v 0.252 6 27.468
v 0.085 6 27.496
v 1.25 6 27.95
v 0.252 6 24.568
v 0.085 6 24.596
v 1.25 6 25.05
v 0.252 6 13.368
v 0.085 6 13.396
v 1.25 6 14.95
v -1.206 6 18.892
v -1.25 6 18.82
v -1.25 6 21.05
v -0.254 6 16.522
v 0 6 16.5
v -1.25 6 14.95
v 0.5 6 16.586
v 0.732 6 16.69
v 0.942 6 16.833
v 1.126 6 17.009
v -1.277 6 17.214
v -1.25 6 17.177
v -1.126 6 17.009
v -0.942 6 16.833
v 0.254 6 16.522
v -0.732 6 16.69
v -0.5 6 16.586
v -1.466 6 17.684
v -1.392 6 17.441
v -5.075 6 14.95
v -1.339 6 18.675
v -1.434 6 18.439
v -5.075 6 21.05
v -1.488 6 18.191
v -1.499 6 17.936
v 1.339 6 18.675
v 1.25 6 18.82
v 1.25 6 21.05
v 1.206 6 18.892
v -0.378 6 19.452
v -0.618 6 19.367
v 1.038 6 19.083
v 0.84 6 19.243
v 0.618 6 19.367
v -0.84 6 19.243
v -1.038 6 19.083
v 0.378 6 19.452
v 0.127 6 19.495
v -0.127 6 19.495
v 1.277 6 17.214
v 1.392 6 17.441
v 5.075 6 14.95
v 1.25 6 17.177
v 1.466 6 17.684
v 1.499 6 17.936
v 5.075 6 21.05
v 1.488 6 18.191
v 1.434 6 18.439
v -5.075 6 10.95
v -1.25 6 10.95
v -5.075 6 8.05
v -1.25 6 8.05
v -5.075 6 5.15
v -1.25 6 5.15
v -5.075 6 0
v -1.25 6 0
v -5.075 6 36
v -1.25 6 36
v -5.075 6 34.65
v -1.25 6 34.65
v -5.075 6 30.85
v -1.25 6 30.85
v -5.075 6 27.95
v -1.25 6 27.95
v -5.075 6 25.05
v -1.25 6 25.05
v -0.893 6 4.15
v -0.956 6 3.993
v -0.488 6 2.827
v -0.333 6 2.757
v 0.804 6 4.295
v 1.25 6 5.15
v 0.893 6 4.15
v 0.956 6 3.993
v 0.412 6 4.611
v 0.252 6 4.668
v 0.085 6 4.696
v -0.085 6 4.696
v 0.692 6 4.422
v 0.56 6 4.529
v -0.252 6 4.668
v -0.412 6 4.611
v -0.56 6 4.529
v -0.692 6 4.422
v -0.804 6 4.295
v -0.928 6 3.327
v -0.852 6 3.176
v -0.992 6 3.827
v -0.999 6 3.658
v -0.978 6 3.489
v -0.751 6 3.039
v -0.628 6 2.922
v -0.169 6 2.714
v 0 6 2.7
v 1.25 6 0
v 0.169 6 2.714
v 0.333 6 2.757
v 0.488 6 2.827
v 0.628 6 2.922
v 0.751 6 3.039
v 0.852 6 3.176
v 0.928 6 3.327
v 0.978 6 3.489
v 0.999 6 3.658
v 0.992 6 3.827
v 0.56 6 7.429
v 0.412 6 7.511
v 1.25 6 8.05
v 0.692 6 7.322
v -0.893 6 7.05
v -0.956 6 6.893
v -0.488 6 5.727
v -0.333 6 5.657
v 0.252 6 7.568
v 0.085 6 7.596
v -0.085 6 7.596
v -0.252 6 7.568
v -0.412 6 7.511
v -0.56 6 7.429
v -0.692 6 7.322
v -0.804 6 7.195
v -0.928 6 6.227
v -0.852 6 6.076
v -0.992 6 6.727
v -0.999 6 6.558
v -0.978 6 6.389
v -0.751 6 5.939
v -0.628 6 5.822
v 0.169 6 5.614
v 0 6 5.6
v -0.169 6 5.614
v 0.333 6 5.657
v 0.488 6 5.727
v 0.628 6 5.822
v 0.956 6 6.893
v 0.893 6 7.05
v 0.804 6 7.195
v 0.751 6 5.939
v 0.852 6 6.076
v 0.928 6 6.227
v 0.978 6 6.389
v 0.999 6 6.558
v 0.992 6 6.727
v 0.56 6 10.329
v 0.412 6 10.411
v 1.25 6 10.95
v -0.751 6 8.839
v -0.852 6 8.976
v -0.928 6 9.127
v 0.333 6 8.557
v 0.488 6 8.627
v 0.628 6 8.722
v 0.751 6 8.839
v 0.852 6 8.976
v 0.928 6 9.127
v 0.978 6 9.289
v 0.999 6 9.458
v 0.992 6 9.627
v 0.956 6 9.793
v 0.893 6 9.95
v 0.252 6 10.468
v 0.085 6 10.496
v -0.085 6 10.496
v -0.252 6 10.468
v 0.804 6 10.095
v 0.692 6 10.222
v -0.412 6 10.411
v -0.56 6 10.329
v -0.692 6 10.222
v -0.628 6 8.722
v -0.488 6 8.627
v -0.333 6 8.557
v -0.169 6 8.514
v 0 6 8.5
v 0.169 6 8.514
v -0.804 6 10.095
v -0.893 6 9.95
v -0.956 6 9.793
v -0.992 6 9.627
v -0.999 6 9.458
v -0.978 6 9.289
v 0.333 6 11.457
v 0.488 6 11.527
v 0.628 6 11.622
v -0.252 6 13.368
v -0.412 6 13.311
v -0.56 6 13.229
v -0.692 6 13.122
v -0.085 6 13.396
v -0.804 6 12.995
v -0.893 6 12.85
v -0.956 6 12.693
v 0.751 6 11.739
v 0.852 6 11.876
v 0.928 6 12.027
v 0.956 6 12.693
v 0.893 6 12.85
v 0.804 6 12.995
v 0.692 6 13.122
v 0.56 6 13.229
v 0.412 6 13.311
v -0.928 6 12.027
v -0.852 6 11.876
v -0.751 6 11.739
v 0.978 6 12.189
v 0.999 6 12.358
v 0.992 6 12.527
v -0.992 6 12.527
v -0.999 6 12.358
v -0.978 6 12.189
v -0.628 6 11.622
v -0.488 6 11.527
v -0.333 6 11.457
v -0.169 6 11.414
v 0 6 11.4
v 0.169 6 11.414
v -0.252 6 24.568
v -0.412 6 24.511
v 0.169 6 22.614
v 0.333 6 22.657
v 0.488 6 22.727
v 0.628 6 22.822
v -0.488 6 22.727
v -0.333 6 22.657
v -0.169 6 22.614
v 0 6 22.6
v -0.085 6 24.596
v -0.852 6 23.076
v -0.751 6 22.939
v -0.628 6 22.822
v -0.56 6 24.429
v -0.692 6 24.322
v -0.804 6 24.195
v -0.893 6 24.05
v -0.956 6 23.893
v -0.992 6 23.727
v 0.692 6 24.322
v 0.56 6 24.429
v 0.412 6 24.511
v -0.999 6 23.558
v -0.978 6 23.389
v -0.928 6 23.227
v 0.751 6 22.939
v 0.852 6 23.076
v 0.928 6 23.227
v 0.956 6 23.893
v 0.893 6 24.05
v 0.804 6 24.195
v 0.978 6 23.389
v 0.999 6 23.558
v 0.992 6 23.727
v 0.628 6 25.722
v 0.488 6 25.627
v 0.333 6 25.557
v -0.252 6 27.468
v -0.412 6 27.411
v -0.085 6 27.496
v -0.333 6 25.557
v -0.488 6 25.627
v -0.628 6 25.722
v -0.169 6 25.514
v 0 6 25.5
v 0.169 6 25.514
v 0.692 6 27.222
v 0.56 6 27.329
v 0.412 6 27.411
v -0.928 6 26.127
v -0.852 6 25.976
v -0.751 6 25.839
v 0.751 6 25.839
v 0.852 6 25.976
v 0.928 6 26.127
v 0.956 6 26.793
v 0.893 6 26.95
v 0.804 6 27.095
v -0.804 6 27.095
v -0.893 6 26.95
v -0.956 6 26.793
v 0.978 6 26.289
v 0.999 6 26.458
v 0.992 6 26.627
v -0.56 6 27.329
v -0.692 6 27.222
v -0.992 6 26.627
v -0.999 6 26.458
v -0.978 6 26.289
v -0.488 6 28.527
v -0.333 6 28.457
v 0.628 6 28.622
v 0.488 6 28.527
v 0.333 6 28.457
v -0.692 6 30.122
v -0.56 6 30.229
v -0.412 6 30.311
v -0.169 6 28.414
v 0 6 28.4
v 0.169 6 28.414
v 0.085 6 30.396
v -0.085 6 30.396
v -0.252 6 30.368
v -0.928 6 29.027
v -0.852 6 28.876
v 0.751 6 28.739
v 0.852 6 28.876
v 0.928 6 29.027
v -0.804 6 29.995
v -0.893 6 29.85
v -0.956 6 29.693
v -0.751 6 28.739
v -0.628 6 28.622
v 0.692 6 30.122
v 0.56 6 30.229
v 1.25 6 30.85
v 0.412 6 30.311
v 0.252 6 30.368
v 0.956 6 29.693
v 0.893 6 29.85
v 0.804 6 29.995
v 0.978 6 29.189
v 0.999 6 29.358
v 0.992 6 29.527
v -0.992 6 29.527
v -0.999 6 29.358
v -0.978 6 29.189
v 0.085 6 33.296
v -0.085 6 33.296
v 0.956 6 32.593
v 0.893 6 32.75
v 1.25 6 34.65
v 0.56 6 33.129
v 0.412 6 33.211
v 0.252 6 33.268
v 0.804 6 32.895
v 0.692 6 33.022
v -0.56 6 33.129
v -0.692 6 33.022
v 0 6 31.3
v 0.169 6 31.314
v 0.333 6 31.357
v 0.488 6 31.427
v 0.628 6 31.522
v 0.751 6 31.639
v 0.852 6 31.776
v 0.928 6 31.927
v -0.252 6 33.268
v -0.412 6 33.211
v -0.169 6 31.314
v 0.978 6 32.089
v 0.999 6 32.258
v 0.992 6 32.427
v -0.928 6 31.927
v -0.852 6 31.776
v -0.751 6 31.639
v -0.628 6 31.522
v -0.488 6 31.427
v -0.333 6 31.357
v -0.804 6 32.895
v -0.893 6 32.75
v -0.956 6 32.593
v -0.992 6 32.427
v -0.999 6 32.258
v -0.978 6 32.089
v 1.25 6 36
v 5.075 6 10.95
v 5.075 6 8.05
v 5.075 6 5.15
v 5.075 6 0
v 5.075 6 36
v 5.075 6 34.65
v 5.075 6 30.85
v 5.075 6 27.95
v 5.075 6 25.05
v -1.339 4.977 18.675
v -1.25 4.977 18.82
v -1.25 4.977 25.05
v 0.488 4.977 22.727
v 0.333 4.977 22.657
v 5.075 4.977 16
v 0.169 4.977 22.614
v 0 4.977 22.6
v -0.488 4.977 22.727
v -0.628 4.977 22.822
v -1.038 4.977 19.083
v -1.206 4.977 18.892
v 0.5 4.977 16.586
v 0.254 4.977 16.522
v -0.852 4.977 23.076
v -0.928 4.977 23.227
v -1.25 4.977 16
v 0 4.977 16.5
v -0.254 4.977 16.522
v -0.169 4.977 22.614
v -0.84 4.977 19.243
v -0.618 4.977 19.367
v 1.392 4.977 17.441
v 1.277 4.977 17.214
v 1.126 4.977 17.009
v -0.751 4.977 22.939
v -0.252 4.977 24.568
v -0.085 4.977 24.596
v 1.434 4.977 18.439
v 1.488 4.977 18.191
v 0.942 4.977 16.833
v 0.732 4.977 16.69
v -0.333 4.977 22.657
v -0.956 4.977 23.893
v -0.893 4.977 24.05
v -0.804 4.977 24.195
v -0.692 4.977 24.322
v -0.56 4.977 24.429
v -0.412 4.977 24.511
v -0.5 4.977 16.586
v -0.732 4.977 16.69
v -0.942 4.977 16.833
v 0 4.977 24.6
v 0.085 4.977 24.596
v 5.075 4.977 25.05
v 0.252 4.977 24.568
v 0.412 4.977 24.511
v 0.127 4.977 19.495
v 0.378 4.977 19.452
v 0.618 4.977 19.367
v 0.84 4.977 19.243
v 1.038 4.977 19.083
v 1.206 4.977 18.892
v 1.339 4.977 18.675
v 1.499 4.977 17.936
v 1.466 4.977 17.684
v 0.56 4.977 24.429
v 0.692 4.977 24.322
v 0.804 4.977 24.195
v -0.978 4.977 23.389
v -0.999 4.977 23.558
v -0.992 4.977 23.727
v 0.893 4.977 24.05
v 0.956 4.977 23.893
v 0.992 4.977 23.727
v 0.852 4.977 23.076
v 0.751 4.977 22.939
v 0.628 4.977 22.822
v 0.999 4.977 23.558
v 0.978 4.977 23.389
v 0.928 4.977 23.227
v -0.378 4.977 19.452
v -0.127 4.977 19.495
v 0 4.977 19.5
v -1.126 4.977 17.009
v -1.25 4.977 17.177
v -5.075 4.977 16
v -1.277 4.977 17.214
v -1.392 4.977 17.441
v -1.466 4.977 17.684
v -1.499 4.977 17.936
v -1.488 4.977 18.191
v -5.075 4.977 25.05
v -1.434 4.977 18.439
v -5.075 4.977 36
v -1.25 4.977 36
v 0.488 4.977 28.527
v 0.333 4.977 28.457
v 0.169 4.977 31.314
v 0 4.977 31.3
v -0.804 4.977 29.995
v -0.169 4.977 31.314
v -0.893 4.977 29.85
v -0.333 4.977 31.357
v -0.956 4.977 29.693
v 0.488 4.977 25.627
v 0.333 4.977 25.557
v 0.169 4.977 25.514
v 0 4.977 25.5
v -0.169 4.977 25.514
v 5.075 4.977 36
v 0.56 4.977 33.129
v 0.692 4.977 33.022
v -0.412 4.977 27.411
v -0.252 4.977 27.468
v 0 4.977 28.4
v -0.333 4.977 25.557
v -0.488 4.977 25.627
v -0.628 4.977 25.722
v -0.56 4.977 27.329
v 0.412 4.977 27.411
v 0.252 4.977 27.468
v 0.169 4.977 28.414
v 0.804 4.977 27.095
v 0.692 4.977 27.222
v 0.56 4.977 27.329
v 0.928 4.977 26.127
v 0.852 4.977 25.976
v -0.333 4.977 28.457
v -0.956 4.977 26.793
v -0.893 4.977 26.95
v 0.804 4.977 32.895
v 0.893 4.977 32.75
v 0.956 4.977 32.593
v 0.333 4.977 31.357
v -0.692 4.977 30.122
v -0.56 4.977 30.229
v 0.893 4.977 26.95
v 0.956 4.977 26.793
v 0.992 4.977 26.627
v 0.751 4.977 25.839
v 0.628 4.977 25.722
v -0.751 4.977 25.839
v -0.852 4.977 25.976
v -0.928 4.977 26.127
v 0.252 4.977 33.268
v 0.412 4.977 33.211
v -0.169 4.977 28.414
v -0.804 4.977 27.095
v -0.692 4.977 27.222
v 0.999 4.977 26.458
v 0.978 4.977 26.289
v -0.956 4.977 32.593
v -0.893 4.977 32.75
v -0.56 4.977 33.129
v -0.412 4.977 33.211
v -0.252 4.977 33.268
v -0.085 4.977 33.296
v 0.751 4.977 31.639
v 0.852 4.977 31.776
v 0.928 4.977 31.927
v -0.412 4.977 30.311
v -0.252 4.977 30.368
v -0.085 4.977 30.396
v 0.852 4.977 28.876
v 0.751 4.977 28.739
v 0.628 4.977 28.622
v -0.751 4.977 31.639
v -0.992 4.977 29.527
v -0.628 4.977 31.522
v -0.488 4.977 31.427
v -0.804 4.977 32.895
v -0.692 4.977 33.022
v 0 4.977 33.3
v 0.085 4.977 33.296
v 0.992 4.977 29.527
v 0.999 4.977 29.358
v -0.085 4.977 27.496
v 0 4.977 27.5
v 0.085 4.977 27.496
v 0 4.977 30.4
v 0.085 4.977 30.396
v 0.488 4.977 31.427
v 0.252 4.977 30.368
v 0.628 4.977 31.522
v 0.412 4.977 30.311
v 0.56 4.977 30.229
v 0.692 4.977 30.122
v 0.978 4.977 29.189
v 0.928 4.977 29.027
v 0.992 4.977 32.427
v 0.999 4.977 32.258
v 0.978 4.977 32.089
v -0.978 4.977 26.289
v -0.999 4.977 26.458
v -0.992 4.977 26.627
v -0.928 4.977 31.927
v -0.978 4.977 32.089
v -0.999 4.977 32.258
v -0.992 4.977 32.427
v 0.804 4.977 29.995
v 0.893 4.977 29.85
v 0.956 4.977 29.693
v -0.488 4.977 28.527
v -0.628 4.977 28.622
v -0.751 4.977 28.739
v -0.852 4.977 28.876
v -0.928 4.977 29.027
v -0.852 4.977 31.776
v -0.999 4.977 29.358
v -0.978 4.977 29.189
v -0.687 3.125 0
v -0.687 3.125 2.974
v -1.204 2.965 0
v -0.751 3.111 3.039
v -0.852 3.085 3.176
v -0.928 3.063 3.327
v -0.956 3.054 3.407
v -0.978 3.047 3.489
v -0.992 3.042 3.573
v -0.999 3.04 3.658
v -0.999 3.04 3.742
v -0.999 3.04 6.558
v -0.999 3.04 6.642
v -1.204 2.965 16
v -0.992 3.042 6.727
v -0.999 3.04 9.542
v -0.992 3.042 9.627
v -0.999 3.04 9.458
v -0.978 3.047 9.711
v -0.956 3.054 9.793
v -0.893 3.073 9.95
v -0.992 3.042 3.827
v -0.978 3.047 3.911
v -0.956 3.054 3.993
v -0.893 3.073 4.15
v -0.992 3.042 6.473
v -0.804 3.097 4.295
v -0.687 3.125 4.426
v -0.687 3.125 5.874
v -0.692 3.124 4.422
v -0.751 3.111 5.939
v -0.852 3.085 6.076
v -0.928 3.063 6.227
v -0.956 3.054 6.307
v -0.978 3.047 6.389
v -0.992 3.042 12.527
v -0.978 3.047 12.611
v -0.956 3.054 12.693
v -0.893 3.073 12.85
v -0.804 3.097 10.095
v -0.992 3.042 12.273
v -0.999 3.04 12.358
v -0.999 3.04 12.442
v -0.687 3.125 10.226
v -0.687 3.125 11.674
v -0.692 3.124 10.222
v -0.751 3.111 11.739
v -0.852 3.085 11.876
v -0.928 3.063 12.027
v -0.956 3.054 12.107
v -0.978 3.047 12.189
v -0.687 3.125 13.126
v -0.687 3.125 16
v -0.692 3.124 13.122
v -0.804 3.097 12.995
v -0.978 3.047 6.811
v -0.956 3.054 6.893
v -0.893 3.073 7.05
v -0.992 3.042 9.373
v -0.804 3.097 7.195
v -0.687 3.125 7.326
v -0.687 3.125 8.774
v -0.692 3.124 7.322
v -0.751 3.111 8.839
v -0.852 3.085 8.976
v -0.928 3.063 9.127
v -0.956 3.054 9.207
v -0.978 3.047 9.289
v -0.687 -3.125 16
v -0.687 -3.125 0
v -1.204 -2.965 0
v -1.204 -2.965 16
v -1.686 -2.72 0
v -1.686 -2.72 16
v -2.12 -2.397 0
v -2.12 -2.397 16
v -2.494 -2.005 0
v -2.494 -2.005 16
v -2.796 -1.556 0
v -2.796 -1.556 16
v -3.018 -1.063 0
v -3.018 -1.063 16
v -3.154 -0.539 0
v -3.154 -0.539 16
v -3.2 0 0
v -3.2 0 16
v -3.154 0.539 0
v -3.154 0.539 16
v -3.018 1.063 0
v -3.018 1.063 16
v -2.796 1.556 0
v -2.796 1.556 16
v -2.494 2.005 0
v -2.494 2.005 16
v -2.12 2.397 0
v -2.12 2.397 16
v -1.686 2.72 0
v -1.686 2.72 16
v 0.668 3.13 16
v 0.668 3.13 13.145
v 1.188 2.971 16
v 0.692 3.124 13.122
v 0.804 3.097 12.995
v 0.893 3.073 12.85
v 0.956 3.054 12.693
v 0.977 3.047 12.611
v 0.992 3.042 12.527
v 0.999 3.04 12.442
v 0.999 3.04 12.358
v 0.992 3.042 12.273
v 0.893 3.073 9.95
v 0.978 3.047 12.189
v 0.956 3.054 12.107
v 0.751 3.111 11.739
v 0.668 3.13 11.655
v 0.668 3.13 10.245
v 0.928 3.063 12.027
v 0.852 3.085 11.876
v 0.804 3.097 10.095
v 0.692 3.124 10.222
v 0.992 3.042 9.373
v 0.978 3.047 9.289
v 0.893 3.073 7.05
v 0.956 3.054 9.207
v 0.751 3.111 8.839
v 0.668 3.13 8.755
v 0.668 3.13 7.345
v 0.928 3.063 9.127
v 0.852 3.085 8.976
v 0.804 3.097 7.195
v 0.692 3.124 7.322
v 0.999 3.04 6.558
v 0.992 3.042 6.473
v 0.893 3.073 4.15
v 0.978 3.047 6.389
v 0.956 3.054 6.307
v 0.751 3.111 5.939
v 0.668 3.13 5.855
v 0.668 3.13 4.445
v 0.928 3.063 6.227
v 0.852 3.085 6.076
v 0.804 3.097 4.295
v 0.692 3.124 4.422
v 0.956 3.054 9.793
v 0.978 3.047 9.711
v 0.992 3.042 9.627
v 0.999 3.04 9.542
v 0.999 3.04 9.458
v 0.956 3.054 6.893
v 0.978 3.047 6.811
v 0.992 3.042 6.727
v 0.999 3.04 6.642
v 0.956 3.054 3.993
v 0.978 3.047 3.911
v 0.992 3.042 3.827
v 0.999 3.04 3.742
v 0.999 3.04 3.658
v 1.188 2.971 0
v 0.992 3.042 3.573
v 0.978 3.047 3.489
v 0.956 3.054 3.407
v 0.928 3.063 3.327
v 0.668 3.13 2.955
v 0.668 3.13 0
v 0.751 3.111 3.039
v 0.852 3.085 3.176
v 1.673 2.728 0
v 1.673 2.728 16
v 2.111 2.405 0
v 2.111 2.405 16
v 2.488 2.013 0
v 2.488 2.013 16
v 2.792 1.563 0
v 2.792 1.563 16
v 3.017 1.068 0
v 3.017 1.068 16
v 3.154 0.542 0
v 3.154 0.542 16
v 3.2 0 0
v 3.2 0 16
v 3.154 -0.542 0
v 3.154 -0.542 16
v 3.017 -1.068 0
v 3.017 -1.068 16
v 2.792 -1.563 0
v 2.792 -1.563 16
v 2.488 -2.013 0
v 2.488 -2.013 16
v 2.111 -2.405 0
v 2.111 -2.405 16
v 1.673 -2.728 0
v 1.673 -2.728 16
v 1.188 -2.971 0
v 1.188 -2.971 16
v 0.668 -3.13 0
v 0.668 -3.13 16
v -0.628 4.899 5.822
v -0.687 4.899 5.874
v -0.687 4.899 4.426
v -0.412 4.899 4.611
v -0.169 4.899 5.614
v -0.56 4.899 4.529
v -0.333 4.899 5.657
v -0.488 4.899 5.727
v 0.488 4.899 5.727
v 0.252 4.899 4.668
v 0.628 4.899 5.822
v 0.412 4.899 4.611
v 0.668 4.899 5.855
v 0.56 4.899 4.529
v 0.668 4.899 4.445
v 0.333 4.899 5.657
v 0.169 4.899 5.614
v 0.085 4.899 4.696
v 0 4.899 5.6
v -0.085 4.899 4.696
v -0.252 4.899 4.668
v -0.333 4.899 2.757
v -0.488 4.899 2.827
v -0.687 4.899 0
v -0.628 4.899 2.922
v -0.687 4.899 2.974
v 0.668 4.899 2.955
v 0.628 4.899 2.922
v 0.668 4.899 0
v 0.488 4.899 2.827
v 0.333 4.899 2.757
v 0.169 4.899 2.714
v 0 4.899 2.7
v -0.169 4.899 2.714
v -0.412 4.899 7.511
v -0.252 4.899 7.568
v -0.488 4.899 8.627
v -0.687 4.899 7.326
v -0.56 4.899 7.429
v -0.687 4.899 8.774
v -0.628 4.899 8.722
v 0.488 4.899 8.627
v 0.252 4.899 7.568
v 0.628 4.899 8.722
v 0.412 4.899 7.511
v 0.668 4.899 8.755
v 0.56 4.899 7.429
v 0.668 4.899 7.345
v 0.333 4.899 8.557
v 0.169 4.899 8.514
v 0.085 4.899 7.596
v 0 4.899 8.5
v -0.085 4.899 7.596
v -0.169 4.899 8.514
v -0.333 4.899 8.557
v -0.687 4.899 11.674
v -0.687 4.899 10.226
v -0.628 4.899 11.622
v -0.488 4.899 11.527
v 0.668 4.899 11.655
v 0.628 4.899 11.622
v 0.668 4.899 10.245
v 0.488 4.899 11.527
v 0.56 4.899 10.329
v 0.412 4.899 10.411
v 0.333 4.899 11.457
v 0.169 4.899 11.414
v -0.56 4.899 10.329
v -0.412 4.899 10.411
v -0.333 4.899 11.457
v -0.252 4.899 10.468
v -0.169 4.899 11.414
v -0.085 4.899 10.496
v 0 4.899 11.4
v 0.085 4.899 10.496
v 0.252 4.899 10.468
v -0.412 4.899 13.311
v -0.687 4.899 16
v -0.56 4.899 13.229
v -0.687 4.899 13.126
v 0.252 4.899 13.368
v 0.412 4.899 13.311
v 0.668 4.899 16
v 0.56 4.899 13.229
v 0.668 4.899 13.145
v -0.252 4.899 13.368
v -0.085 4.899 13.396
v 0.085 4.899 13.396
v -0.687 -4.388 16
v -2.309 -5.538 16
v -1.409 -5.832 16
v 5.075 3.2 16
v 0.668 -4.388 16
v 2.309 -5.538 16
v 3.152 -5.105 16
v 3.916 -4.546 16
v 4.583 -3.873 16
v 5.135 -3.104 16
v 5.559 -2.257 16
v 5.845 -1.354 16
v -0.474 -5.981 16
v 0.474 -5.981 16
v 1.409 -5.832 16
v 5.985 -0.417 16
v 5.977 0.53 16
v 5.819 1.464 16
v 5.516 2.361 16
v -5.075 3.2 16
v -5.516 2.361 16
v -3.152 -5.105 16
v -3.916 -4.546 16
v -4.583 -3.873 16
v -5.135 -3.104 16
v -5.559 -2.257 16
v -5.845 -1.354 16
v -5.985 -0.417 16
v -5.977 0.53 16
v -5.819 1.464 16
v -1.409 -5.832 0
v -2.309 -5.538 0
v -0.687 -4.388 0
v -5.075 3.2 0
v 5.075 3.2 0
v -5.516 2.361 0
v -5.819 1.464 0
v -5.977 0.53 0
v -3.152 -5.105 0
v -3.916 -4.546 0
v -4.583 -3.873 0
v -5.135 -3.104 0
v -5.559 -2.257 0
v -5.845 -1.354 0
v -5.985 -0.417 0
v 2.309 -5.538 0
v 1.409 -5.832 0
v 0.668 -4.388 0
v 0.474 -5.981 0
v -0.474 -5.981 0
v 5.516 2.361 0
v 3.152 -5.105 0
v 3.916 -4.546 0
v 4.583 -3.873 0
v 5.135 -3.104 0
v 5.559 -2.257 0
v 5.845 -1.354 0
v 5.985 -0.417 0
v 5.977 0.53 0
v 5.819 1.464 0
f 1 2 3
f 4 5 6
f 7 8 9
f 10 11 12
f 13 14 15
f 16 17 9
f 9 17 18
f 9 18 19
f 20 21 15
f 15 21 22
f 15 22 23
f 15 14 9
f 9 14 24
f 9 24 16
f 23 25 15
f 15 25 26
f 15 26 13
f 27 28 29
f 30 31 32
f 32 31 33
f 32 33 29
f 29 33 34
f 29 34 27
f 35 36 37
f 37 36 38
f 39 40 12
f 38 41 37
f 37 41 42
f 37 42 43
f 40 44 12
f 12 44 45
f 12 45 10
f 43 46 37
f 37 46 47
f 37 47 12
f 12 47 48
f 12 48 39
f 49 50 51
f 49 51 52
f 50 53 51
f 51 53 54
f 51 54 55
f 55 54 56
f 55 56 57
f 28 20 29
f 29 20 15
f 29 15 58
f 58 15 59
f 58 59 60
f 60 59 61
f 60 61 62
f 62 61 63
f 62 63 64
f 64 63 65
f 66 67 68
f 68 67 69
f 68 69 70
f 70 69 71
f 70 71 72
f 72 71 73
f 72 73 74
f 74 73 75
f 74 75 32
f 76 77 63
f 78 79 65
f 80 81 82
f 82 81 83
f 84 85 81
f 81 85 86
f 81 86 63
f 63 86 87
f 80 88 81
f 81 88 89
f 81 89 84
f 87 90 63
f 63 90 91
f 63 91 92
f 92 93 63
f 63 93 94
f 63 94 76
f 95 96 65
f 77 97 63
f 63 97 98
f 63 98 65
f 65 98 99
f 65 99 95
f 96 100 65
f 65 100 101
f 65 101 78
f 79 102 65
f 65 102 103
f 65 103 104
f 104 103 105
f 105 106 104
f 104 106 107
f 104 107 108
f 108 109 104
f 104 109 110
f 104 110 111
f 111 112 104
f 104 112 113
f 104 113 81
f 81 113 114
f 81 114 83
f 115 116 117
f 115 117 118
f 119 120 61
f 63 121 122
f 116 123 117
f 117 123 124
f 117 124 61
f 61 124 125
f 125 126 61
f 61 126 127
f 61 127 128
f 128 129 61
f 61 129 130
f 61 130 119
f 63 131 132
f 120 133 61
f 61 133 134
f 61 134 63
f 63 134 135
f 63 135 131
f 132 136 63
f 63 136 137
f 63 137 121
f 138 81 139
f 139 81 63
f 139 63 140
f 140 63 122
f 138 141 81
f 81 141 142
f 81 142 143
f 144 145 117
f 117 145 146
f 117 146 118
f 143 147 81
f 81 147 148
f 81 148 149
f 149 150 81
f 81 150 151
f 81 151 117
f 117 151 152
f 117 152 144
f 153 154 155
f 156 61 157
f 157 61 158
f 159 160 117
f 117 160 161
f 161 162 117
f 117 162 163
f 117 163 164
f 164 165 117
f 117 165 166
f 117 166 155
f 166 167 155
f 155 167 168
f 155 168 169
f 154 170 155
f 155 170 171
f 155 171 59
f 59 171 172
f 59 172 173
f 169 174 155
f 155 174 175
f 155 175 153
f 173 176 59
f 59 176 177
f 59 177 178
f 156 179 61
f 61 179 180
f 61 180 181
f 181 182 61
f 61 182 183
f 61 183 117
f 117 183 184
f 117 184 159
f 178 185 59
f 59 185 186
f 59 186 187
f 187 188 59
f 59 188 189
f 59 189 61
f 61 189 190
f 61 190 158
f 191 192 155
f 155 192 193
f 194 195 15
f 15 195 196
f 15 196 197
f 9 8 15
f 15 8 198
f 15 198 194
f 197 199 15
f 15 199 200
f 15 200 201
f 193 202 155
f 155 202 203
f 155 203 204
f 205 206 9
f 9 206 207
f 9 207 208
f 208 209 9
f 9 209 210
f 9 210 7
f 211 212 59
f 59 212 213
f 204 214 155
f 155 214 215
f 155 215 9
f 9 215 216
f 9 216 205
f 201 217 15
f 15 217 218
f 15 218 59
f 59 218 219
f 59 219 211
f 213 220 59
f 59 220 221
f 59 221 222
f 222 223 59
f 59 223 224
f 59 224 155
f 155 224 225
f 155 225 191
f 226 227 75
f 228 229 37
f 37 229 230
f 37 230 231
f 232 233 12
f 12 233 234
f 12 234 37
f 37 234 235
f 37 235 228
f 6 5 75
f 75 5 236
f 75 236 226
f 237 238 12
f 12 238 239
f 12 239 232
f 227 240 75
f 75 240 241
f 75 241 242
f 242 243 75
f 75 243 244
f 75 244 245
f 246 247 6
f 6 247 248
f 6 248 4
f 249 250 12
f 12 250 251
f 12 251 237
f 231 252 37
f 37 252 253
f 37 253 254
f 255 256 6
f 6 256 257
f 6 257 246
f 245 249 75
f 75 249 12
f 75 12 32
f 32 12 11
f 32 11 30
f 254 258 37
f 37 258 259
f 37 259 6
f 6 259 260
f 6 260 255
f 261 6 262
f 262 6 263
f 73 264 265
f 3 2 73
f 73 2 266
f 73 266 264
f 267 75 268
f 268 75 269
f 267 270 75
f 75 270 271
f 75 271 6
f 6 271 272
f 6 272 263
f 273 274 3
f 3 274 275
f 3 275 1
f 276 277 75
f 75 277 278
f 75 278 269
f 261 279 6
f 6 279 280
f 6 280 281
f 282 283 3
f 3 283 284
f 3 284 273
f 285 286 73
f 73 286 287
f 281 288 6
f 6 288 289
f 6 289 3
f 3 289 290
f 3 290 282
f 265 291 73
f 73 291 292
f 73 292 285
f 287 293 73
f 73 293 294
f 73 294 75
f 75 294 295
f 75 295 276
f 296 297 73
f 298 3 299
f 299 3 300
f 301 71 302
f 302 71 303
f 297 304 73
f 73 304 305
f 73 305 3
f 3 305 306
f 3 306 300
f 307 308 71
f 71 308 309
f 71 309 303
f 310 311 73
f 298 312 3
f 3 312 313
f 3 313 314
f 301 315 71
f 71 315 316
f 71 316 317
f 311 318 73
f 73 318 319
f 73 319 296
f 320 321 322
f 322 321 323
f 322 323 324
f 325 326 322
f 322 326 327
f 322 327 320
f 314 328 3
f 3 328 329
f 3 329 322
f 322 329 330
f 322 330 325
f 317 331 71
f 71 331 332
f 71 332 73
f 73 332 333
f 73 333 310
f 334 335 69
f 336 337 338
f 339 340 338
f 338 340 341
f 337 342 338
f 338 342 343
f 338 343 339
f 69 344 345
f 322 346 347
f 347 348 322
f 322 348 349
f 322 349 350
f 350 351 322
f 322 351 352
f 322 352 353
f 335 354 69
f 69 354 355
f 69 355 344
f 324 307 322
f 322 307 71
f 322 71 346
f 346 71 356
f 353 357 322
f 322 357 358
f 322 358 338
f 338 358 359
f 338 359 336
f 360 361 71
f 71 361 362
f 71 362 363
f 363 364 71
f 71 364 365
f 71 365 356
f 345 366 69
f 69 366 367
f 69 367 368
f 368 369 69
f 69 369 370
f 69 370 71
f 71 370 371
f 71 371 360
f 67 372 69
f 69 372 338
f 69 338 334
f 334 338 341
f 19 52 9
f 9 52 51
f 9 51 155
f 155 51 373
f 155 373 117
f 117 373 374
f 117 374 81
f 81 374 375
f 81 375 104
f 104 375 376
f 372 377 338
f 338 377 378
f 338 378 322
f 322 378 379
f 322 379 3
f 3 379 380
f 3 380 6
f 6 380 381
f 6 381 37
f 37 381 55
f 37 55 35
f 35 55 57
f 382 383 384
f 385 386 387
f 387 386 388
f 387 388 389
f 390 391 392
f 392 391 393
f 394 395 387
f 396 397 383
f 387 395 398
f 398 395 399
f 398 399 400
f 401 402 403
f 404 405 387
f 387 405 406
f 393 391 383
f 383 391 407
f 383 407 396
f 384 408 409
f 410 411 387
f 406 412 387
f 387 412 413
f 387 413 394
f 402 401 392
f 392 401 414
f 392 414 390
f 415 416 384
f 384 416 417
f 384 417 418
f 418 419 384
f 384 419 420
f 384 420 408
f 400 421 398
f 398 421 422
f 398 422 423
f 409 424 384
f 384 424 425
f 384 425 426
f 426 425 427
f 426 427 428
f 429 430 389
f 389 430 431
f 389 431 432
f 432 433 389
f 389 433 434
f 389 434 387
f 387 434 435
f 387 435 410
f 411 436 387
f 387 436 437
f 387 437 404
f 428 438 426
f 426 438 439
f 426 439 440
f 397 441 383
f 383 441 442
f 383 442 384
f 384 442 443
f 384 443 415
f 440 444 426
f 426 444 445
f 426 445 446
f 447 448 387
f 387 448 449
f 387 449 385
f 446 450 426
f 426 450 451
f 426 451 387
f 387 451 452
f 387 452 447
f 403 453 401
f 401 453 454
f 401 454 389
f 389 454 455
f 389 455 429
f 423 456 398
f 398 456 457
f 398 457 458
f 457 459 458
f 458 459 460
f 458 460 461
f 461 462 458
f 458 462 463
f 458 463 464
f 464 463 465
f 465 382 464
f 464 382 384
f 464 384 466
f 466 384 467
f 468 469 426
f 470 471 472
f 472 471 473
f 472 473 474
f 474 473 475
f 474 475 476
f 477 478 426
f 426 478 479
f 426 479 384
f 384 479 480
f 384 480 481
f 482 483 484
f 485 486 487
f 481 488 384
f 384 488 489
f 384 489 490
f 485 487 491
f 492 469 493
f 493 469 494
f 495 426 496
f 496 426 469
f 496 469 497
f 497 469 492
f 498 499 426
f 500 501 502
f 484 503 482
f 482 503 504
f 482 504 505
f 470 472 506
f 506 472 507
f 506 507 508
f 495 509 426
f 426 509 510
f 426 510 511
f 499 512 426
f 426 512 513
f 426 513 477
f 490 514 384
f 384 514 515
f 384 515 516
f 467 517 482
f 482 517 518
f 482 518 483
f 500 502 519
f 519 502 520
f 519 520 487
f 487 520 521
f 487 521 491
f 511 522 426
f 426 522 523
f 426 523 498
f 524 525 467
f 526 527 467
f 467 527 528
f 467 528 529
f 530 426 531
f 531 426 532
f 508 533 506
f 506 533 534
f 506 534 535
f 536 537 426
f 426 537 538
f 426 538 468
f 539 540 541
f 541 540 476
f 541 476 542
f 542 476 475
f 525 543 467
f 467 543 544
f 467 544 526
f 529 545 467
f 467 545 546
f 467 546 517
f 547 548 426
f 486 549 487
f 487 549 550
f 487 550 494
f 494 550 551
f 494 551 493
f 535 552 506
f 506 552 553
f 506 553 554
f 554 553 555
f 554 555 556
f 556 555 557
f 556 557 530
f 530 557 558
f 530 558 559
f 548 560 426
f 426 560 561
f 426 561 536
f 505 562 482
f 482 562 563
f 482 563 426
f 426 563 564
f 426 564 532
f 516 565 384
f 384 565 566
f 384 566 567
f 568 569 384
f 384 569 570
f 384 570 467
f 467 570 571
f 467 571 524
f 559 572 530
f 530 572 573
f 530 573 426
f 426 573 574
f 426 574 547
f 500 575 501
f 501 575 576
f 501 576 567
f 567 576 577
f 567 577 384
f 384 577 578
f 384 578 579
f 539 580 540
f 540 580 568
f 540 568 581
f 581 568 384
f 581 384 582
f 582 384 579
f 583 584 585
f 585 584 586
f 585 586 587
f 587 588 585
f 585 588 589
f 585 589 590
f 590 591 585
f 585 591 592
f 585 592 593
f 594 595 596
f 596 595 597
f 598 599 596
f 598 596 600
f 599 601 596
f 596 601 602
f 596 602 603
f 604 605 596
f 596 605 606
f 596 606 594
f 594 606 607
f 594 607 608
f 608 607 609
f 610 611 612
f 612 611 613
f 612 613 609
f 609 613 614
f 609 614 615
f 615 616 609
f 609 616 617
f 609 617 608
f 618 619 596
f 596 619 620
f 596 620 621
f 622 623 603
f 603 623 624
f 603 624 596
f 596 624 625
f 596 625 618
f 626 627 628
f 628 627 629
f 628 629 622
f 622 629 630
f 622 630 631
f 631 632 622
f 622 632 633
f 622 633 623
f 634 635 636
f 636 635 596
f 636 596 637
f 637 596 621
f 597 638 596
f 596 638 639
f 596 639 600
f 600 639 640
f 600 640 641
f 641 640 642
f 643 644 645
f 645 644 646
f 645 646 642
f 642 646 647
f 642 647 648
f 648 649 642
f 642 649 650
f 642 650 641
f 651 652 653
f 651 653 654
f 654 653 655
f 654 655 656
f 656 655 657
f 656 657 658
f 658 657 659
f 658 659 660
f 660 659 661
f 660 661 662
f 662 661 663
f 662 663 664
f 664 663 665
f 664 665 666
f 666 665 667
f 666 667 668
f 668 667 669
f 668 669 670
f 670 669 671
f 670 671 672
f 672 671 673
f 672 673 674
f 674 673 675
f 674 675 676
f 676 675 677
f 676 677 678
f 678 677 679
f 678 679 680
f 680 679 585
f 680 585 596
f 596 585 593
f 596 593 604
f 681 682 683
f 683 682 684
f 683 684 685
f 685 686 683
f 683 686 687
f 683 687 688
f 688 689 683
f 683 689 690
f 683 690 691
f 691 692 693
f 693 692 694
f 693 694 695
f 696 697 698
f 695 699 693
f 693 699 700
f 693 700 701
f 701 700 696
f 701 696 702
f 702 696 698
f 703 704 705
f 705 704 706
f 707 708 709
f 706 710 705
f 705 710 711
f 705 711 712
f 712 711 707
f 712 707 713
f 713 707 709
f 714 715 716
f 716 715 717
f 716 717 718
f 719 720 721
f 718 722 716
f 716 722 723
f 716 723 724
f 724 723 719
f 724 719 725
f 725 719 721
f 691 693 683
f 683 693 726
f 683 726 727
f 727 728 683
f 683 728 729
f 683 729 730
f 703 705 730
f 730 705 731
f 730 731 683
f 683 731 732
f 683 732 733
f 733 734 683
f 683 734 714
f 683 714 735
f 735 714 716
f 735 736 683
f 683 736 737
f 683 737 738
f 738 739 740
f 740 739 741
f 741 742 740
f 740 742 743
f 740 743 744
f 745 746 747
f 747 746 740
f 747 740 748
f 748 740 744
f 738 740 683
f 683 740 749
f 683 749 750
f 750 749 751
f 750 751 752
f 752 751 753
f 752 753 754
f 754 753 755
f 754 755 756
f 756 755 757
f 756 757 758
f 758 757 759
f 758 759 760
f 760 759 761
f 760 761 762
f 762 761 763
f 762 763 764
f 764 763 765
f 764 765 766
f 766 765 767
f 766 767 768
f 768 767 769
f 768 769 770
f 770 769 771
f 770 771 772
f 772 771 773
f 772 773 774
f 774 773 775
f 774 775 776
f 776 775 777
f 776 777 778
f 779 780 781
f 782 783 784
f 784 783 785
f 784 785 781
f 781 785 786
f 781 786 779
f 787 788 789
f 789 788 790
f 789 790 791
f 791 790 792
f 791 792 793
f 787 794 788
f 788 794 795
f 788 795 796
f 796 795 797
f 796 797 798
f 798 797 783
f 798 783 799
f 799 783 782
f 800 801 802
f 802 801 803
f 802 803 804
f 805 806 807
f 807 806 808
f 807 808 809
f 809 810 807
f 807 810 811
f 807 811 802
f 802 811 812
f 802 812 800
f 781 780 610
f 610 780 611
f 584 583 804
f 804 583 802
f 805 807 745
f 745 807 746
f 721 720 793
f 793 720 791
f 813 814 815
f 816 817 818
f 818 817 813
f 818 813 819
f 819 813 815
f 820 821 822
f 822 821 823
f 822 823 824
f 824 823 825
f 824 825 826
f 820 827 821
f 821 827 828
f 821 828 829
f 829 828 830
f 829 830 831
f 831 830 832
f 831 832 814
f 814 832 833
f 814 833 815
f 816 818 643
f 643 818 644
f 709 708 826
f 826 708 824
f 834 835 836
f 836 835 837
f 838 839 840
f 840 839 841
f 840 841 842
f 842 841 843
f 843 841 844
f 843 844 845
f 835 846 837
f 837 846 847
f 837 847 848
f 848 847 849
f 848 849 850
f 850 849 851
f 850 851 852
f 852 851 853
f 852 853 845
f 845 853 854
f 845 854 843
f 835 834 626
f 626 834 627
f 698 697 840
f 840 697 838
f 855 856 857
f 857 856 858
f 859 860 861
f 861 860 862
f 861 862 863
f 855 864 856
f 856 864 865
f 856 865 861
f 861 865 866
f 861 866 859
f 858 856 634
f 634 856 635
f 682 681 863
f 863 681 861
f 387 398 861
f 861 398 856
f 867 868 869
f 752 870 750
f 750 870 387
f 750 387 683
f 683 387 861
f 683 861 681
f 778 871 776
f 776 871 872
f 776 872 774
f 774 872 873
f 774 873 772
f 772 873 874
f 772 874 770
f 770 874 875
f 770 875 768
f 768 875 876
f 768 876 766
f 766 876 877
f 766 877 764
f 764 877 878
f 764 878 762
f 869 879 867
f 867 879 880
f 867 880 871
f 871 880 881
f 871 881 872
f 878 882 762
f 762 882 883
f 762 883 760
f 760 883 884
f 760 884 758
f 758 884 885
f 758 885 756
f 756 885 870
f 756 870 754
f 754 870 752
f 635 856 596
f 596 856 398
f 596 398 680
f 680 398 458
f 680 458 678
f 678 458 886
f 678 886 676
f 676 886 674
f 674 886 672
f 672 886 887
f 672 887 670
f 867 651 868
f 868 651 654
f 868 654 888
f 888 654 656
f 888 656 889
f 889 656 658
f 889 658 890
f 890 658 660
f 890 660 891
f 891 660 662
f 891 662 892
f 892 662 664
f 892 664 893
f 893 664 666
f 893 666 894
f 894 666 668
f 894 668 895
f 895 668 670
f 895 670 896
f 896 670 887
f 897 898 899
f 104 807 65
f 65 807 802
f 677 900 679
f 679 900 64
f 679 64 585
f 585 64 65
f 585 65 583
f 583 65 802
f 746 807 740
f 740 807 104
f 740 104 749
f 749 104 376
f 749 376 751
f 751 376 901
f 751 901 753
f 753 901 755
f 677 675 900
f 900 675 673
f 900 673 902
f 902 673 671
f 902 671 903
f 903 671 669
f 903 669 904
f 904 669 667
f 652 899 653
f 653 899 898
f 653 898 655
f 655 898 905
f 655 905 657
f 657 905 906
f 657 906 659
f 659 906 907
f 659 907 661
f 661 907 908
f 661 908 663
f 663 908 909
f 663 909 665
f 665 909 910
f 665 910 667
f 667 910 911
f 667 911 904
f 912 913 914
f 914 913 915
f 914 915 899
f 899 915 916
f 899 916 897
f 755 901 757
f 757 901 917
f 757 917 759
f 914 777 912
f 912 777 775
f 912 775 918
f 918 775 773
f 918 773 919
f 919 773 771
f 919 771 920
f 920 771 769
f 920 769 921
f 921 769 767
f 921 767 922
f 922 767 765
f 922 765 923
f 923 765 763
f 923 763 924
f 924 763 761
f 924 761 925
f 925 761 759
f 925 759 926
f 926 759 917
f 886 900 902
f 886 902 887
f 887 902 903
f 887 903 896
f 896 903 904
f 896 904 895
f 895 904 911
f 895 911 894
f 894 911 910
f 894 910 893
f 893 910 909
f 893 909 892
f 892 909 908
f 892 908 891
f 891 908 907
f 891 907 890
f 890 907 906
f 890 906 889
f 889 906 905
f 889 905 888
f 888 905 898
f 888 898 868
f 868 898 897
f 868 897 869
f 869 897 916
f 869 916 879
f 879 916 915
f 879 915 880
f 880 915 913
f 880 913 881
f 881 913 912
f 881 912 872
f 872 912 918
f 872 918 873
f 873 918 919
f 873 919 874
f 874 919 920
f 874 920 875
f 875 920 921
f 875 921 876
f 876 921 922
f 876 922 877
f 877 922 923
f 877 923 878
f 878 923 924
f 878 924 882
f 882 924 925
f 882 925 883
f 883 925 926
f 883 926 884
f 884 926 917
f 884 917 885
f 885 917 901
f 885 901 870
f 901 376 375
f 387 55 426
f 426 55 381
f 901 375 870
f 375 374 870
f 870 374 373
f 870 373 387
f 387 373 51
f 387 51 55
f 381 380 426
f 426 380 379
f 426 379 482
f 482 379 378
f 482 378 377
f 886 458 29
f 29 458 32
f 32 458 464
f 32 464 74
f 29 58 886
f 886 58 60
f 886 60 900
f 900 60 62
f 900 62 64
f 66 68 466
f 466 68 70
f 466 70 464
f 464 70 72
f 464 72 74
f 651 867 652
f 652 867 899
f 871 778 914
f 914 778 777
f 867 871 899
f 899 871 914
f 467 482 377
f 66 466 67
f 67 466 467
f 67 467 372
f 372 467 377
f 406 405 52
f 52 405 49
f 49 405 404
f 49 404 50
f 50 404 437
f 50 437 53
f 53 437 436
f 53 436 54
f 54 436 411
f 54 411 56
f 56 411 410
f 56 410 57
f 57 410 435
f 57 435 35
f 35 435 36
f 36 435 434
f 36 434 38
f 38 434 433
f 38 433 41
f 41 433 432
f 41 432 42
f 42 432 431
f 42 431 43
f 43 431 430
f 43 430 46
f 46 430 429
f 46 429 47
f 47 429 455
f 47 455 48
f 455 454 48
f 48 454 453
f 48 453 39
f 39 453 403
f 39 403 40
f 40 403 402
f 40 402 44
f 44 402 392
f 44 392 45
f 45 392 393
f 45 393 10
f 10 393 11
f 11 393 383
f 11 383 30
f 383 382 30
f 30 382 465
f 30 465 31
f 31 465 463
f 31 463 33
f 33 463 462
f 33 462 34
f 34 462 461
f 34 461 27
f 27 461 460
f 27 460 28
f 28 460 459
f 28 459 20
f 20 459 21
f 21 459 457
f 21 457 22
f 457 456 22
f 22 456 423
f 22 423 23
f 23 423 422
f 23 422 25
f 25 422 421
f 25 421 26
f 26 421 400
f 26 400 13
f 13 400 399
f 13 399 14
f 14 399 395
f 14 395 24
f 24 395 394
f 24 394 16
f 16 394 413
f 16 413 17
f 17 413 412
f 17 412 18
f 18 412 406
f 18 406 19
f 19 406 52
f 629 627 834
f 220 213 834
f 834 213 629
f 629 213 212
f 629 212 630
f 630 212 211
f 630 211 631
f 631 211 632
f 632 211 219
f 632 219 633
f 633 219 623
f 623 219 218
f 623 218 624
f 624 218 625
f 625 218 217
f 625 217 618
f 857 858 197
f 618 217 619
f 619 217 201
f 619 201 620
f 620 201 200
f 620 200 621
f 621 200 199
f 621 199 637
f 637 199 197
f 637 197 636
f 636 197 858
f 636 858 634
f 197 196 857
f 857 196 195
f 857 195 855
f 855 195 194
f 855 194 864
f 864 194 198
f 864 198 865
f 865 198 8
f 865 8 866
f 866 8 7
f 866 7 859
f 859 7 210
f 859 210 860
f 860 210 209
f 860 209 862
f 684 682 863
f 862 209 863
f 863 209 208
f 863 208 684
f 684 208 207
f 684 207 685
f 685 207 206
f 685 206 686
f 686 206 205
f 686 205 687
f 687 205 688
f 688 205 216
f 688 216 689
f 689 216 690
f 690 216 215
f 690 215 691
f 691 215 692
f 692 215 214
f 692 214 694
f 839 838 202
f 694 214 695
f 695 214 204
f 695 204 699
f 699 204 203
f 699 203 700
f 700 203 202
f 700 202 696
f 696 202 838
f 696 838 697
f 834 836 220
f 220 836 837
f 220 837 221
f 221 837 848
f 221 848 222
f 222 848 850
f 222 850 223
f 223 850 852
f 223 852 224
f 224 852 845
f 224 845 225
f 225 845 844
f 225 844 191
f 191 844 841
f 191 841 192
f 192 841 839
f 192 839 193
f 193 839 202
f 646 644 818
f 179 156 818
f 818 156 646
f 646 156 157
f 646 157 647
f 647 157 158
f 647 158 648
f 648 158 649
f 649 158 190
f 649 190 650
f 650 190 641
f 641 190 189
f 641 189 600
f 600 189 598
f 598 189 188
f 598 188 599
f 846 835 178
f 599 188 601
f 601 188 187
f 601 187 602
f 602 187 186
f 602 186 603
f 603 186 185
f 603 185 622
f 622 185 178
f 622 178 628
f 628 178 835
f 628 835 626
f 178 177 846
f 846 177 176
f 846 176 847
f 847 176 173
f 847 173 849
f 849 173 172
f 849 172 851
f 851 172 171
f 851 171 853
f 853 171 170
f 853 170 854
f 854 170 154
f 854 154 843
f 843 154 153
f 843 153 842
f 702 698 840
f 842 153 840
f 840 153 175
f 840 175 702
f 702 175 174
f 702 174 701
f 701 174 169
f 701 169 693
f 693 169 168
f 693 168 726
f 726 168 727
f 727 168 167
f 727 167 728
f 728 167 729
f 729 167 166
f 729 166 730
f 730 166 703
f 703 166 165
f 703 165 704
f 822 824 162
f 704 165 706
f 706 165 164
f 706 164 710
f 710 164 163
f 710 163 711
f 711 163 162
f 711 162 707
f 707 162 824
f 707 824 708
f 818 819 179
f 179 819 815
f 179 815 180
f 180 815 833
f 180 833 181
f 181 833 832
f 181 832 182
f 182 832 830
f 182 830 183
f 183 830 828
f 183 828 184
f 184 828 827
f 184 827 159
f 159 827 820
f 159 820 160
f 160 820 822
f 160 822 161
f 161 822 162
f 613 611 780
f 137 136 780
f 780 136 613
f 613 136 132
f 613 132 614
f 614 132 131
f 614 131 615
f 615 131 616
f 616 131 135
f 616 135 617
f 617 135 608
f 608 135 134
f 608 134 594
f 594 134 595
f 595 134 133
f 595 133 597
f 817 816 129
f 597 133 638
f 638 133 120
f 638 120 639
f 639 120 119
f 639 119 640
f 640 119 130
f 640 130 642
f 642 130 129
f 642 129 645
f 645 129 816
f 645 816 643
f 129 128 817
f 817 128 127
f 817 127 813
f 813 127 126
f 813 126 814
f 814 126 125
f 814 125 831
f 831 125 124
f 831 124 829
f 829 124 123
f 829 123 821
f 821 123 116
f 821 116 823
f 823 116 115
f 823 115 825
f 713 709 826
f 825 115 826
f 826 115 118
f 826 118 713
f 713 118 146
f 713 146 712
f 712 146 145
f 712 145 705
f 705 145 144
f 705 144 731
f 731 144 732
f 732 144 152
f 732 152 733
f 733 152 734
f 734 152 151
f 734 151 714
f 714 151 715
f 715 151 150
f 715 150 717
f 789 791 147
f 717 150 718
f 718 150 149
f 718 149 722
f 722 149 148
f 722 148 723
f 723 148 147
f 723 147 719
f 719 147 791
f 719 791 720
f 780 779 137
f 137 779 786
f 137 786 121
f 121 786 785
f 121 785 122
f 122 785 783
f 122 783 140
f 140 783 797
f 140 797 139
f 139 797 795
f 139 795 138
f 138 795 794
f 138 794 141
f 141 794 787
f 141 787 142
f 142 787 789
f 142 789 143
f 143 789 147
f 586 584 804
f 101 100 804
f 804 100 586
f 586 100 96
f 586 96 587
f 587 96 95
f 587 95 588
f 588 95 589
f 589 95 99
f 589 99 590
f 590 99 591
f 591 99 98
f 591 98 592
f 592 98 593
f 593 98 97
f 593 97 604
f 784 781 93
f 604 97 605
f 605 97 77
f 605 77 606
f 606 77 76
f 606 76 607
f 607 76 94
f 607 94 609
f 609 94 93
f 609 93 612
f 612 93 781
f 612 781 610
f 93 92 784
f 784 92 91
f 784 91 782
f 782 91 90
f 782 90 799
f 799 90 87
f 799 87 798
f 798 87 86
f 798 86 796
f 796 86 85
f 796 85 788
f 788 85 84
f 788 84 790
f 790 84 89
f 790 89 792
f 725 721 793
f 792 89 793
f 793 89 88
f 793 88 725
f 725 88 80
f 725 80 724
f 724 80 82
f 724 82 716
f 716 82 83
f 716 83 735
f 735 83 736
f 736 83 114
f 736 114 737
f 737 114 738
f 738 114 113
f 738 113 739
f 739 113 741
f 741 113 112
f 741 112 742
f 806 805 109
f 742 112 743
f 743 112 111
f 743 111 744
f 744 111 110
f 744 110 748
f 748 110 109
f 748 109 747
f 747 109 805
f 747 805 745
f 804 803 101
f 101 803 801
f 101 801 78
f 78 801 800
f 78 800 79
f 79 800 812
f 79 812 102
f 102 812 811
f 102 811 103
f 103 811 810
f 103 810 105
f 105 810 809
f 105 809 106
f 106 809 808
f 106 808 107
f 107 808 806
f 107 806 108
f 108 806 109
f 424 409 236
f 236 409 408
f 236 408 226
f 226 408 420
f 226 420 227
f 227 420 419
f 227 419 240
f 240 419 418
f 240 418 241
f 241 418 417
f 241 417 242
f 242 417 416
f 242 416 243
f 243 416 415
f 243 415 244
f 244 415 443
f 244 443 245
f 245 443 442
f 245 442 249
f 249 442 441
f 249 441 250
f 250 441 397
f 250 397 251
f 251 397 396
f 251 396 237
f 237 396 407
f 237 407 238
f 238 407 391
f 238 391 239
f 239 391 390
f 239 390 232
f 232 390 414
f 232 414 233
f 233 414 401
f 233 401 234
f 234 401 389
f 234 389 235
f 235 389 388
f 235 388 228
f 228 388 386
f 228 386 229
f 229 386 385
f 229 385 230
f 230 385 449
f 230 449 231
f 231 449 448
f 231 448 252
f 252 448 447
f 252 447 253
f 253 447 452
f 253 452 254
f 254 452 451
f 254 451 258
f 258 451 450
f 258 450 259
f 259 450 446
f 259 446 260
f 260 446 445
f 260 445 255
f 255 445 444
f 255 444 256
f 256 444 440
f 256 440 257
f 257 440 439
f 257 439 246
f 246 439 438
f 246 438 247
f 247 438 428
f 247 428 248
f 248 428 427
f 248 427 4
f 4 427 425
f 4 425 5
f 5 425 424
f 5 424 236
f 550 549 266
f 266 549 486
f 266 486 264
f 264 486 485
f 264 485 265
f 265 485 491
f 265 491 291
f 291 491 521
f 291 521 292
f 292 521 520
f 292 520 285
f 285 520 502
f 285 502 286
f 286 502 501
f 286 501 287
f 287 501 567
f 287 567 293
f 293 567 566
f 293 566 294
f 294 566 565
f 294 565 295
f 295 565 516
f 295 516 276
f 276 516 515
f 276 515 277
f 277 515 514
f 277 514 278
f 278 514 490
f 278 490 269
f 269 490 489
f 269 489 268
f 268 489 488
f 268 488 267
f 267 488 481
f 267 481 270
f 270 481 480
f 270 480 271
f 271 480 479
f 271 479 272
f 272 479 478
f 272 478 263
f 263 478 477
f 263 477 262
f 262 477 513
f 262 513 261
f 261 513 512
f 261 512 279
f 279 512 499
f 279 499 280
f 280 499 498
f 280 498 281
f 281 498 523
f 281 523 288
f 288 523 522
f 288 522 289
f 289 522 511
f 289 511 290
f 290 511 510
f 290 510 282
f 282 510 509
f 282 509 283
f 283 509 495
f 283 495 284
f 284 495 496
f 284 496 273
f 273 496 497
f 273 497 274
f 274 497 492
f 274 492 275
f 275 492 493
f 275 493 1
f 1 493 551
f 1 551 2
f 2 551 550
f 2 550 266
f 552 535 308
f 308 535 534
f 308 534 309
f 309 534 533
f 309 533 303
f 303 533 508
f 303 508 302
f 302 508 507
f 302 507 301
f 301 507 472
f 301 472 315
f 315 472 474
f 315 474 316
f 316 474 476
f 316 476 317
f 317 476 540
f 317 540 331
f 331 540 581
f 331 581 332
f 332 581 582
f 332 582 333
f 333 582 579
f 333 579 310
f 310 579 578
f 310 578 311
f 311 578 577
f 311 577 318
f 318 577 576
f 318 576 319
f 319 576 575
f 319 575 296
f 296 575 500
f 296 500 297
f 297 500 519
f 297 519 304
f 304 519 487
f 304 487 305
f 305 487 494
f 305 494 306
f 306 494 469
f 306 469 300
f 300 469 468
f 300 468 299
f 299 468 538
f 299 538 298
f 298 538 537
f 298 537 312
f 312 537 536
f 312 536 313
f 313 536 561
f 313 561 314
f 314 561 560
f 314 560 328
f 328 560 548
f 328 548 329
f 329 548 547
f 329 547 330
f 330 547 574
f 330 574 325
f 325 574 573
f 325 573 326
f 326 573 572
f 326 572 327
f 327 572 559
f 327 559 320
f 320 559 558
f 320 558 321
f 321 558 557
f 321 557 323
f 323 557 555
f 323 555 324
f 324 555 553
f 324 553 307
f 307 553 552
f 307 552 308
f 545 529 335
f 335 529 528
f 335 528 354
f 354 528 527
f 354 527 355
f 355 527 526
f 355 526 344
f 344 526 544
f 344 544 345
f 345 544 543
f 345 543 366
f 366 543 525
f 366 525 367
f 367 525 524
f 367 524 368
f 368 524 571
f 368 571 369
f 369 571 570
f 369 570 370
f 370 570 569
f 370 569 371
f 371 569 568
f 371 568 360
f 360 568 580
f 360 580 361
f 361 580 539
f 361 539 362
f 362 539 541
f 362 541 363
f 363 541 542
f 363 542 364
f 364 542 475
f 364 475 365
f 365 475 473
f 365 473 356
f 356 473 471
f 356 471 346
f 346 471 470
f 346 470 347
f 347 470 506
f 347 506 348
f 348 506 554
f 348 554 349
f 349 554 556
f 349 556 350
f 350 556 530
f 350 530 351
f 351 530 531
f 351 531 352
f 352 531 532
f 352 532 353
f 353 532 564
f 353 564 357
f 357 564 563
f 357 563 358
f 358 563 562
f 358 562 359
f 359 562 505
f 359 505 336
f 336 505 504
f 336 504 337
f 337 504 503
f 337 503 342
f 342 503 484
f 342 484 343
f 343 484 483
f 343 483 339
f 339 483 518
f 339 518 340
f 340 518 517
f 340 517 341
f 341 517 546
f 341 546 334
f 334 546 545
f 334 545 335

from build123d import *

# Parameters (mm, degrees)
SKETCH1_R               = 6
SKETCH1_R_2             = 3.2
BOSS_EXTRUDE1_DEPTH     = 16
SKETCH2_W               = 10.150862032
SKETCH2_H               = 2.8
BOSS_EXTRUDE2_DEPTH     = 16
CUT_EXTRUDE1_DEPTH      = 16
CUT_EXTRUDE1_DEPTH_BACK = 1
SKETCH3_W               = 1.354750416
SKETCH3_H               = 9.28691227
SKETCH4_W               = 10.150862032
SKETCH4_H               = 1.022764777
BOSS_EXTRUDE3_DEPTH     = 36
SKETCH5_R               = 1.5
CUT_EXTRUDE2_DEPTH      = 11
CUT_EXTRUDE3_DEPTH      = 11
CUT_EXTRUDE3_DEPTH_BACK = 0.1
SKETCH6_R               = 1


with BuildPart() as part:
    # Sketch1 → Boss-Extrude1 (new body)
    with BuildSketch(Plane.XY):
        Circle(SKETCH1_R)
        Circle(SKETCH1_R_2, mode=Mode.SUBTRACT)
    extrude(amount=BOSS_EXTRUDE1_DEPTH)

    # Sketch2 → Boss-Extrude2 (add)
    with BuildSketch(Plane.XY):
        with Locations((0, 4.6)):
            Rectangle(SKETCH2_W, SKETCH2_H)
    extrude(amount=BOSS_EXTRUDE2_DEPTH)

    # Sketch3 → Cut-Extrude1 (cut, two sides: drawn at the far end of the back side and taken through both)
    with BuildSketch(Plane.XY.offset(-CUT_EXTRUDE1_DEPTH_BACK)):
        with Locations((-0.009817032, 0.255242832)):
            Rectangle(SKETCH3_W, SKETCH3_H)
    extrude(amount=CUT_EXTRUDE1_DEPTH + CUT_EXTRUDE1_DEPTH_BACK, mode=Mode.SUBTRACT)

    # Sketch4 → Boss-Extrude3 (add)
    with BuildSketch(Plane.XY):
        with Locations((0, 5.488617612)):
            Rectangle(SKETCH4_W, SKETCH4_H)
    extrude(amount=BOSS_EXTRUDE3_DEPTH)

    # Sketch5 → Cut-Extrude2 (cut)
    with BuildSketch(Plane(origin=(0, 0, 0), x_dir=(1, 0, 0), z_dir=(0, 1, 0))):
        with Locations(Location((0, -18, 0), (0, 0, 90))):
            Circle(SKETCH5_R)
    extrude(amount=CUT_EXTRUDE2_DEPTH, mode=Mode.SUBTRACT)

    # Sketch6 → Cut-Extrude3 (cut, two sides: drawn at the far end of the back side and taken through both)
    with BuildSketch(Plane(origin=(0, 0, 0), x_dir=(1, 0, 0), z_dir=(0, 1, 0)).offset(-CUT_EXTRUDE3_DEPTH_BACK)):
        with Locations(Location((0, -12.4, 0), (0, 0, 90))):
            Circle(SKETCH6_R)
        with Locations(Location((0, -9.5, 0), (0, 0, 90))):
            Circle(SKETCH6_R)
        with Locations(Location((0, -6.6, 0), (0, 0, 90))):
            Circle(SKETCH6_R)
        with Locations(Location((0, -3.7, 0), (0, 0, 90))):
            Circle(SKETCH6_R)
        with Locations(Location((0, -23.6, 0), (0, 0, 90))):
            Circle(SKETCH6_R)
        with Locations(Location((0, -26.5, 0), (0, 0, 90))):
            Circle(SKETCH6_R)
        with Locations(Location((0, -29.4, 0), (0, 0, 90))):
            Circle(SKETCH6_R)
        with Locations(Location((0, -32.3, 0), (0, 0, 90))):
            Circle(SKETCH6_R)
    extrude(amount=CUT_EXTRUDE3_DEPTH + CUT_EXTRUDE3_DEPTH_BACK, mode=Mode.SUBTRACT)


solid = part.part
